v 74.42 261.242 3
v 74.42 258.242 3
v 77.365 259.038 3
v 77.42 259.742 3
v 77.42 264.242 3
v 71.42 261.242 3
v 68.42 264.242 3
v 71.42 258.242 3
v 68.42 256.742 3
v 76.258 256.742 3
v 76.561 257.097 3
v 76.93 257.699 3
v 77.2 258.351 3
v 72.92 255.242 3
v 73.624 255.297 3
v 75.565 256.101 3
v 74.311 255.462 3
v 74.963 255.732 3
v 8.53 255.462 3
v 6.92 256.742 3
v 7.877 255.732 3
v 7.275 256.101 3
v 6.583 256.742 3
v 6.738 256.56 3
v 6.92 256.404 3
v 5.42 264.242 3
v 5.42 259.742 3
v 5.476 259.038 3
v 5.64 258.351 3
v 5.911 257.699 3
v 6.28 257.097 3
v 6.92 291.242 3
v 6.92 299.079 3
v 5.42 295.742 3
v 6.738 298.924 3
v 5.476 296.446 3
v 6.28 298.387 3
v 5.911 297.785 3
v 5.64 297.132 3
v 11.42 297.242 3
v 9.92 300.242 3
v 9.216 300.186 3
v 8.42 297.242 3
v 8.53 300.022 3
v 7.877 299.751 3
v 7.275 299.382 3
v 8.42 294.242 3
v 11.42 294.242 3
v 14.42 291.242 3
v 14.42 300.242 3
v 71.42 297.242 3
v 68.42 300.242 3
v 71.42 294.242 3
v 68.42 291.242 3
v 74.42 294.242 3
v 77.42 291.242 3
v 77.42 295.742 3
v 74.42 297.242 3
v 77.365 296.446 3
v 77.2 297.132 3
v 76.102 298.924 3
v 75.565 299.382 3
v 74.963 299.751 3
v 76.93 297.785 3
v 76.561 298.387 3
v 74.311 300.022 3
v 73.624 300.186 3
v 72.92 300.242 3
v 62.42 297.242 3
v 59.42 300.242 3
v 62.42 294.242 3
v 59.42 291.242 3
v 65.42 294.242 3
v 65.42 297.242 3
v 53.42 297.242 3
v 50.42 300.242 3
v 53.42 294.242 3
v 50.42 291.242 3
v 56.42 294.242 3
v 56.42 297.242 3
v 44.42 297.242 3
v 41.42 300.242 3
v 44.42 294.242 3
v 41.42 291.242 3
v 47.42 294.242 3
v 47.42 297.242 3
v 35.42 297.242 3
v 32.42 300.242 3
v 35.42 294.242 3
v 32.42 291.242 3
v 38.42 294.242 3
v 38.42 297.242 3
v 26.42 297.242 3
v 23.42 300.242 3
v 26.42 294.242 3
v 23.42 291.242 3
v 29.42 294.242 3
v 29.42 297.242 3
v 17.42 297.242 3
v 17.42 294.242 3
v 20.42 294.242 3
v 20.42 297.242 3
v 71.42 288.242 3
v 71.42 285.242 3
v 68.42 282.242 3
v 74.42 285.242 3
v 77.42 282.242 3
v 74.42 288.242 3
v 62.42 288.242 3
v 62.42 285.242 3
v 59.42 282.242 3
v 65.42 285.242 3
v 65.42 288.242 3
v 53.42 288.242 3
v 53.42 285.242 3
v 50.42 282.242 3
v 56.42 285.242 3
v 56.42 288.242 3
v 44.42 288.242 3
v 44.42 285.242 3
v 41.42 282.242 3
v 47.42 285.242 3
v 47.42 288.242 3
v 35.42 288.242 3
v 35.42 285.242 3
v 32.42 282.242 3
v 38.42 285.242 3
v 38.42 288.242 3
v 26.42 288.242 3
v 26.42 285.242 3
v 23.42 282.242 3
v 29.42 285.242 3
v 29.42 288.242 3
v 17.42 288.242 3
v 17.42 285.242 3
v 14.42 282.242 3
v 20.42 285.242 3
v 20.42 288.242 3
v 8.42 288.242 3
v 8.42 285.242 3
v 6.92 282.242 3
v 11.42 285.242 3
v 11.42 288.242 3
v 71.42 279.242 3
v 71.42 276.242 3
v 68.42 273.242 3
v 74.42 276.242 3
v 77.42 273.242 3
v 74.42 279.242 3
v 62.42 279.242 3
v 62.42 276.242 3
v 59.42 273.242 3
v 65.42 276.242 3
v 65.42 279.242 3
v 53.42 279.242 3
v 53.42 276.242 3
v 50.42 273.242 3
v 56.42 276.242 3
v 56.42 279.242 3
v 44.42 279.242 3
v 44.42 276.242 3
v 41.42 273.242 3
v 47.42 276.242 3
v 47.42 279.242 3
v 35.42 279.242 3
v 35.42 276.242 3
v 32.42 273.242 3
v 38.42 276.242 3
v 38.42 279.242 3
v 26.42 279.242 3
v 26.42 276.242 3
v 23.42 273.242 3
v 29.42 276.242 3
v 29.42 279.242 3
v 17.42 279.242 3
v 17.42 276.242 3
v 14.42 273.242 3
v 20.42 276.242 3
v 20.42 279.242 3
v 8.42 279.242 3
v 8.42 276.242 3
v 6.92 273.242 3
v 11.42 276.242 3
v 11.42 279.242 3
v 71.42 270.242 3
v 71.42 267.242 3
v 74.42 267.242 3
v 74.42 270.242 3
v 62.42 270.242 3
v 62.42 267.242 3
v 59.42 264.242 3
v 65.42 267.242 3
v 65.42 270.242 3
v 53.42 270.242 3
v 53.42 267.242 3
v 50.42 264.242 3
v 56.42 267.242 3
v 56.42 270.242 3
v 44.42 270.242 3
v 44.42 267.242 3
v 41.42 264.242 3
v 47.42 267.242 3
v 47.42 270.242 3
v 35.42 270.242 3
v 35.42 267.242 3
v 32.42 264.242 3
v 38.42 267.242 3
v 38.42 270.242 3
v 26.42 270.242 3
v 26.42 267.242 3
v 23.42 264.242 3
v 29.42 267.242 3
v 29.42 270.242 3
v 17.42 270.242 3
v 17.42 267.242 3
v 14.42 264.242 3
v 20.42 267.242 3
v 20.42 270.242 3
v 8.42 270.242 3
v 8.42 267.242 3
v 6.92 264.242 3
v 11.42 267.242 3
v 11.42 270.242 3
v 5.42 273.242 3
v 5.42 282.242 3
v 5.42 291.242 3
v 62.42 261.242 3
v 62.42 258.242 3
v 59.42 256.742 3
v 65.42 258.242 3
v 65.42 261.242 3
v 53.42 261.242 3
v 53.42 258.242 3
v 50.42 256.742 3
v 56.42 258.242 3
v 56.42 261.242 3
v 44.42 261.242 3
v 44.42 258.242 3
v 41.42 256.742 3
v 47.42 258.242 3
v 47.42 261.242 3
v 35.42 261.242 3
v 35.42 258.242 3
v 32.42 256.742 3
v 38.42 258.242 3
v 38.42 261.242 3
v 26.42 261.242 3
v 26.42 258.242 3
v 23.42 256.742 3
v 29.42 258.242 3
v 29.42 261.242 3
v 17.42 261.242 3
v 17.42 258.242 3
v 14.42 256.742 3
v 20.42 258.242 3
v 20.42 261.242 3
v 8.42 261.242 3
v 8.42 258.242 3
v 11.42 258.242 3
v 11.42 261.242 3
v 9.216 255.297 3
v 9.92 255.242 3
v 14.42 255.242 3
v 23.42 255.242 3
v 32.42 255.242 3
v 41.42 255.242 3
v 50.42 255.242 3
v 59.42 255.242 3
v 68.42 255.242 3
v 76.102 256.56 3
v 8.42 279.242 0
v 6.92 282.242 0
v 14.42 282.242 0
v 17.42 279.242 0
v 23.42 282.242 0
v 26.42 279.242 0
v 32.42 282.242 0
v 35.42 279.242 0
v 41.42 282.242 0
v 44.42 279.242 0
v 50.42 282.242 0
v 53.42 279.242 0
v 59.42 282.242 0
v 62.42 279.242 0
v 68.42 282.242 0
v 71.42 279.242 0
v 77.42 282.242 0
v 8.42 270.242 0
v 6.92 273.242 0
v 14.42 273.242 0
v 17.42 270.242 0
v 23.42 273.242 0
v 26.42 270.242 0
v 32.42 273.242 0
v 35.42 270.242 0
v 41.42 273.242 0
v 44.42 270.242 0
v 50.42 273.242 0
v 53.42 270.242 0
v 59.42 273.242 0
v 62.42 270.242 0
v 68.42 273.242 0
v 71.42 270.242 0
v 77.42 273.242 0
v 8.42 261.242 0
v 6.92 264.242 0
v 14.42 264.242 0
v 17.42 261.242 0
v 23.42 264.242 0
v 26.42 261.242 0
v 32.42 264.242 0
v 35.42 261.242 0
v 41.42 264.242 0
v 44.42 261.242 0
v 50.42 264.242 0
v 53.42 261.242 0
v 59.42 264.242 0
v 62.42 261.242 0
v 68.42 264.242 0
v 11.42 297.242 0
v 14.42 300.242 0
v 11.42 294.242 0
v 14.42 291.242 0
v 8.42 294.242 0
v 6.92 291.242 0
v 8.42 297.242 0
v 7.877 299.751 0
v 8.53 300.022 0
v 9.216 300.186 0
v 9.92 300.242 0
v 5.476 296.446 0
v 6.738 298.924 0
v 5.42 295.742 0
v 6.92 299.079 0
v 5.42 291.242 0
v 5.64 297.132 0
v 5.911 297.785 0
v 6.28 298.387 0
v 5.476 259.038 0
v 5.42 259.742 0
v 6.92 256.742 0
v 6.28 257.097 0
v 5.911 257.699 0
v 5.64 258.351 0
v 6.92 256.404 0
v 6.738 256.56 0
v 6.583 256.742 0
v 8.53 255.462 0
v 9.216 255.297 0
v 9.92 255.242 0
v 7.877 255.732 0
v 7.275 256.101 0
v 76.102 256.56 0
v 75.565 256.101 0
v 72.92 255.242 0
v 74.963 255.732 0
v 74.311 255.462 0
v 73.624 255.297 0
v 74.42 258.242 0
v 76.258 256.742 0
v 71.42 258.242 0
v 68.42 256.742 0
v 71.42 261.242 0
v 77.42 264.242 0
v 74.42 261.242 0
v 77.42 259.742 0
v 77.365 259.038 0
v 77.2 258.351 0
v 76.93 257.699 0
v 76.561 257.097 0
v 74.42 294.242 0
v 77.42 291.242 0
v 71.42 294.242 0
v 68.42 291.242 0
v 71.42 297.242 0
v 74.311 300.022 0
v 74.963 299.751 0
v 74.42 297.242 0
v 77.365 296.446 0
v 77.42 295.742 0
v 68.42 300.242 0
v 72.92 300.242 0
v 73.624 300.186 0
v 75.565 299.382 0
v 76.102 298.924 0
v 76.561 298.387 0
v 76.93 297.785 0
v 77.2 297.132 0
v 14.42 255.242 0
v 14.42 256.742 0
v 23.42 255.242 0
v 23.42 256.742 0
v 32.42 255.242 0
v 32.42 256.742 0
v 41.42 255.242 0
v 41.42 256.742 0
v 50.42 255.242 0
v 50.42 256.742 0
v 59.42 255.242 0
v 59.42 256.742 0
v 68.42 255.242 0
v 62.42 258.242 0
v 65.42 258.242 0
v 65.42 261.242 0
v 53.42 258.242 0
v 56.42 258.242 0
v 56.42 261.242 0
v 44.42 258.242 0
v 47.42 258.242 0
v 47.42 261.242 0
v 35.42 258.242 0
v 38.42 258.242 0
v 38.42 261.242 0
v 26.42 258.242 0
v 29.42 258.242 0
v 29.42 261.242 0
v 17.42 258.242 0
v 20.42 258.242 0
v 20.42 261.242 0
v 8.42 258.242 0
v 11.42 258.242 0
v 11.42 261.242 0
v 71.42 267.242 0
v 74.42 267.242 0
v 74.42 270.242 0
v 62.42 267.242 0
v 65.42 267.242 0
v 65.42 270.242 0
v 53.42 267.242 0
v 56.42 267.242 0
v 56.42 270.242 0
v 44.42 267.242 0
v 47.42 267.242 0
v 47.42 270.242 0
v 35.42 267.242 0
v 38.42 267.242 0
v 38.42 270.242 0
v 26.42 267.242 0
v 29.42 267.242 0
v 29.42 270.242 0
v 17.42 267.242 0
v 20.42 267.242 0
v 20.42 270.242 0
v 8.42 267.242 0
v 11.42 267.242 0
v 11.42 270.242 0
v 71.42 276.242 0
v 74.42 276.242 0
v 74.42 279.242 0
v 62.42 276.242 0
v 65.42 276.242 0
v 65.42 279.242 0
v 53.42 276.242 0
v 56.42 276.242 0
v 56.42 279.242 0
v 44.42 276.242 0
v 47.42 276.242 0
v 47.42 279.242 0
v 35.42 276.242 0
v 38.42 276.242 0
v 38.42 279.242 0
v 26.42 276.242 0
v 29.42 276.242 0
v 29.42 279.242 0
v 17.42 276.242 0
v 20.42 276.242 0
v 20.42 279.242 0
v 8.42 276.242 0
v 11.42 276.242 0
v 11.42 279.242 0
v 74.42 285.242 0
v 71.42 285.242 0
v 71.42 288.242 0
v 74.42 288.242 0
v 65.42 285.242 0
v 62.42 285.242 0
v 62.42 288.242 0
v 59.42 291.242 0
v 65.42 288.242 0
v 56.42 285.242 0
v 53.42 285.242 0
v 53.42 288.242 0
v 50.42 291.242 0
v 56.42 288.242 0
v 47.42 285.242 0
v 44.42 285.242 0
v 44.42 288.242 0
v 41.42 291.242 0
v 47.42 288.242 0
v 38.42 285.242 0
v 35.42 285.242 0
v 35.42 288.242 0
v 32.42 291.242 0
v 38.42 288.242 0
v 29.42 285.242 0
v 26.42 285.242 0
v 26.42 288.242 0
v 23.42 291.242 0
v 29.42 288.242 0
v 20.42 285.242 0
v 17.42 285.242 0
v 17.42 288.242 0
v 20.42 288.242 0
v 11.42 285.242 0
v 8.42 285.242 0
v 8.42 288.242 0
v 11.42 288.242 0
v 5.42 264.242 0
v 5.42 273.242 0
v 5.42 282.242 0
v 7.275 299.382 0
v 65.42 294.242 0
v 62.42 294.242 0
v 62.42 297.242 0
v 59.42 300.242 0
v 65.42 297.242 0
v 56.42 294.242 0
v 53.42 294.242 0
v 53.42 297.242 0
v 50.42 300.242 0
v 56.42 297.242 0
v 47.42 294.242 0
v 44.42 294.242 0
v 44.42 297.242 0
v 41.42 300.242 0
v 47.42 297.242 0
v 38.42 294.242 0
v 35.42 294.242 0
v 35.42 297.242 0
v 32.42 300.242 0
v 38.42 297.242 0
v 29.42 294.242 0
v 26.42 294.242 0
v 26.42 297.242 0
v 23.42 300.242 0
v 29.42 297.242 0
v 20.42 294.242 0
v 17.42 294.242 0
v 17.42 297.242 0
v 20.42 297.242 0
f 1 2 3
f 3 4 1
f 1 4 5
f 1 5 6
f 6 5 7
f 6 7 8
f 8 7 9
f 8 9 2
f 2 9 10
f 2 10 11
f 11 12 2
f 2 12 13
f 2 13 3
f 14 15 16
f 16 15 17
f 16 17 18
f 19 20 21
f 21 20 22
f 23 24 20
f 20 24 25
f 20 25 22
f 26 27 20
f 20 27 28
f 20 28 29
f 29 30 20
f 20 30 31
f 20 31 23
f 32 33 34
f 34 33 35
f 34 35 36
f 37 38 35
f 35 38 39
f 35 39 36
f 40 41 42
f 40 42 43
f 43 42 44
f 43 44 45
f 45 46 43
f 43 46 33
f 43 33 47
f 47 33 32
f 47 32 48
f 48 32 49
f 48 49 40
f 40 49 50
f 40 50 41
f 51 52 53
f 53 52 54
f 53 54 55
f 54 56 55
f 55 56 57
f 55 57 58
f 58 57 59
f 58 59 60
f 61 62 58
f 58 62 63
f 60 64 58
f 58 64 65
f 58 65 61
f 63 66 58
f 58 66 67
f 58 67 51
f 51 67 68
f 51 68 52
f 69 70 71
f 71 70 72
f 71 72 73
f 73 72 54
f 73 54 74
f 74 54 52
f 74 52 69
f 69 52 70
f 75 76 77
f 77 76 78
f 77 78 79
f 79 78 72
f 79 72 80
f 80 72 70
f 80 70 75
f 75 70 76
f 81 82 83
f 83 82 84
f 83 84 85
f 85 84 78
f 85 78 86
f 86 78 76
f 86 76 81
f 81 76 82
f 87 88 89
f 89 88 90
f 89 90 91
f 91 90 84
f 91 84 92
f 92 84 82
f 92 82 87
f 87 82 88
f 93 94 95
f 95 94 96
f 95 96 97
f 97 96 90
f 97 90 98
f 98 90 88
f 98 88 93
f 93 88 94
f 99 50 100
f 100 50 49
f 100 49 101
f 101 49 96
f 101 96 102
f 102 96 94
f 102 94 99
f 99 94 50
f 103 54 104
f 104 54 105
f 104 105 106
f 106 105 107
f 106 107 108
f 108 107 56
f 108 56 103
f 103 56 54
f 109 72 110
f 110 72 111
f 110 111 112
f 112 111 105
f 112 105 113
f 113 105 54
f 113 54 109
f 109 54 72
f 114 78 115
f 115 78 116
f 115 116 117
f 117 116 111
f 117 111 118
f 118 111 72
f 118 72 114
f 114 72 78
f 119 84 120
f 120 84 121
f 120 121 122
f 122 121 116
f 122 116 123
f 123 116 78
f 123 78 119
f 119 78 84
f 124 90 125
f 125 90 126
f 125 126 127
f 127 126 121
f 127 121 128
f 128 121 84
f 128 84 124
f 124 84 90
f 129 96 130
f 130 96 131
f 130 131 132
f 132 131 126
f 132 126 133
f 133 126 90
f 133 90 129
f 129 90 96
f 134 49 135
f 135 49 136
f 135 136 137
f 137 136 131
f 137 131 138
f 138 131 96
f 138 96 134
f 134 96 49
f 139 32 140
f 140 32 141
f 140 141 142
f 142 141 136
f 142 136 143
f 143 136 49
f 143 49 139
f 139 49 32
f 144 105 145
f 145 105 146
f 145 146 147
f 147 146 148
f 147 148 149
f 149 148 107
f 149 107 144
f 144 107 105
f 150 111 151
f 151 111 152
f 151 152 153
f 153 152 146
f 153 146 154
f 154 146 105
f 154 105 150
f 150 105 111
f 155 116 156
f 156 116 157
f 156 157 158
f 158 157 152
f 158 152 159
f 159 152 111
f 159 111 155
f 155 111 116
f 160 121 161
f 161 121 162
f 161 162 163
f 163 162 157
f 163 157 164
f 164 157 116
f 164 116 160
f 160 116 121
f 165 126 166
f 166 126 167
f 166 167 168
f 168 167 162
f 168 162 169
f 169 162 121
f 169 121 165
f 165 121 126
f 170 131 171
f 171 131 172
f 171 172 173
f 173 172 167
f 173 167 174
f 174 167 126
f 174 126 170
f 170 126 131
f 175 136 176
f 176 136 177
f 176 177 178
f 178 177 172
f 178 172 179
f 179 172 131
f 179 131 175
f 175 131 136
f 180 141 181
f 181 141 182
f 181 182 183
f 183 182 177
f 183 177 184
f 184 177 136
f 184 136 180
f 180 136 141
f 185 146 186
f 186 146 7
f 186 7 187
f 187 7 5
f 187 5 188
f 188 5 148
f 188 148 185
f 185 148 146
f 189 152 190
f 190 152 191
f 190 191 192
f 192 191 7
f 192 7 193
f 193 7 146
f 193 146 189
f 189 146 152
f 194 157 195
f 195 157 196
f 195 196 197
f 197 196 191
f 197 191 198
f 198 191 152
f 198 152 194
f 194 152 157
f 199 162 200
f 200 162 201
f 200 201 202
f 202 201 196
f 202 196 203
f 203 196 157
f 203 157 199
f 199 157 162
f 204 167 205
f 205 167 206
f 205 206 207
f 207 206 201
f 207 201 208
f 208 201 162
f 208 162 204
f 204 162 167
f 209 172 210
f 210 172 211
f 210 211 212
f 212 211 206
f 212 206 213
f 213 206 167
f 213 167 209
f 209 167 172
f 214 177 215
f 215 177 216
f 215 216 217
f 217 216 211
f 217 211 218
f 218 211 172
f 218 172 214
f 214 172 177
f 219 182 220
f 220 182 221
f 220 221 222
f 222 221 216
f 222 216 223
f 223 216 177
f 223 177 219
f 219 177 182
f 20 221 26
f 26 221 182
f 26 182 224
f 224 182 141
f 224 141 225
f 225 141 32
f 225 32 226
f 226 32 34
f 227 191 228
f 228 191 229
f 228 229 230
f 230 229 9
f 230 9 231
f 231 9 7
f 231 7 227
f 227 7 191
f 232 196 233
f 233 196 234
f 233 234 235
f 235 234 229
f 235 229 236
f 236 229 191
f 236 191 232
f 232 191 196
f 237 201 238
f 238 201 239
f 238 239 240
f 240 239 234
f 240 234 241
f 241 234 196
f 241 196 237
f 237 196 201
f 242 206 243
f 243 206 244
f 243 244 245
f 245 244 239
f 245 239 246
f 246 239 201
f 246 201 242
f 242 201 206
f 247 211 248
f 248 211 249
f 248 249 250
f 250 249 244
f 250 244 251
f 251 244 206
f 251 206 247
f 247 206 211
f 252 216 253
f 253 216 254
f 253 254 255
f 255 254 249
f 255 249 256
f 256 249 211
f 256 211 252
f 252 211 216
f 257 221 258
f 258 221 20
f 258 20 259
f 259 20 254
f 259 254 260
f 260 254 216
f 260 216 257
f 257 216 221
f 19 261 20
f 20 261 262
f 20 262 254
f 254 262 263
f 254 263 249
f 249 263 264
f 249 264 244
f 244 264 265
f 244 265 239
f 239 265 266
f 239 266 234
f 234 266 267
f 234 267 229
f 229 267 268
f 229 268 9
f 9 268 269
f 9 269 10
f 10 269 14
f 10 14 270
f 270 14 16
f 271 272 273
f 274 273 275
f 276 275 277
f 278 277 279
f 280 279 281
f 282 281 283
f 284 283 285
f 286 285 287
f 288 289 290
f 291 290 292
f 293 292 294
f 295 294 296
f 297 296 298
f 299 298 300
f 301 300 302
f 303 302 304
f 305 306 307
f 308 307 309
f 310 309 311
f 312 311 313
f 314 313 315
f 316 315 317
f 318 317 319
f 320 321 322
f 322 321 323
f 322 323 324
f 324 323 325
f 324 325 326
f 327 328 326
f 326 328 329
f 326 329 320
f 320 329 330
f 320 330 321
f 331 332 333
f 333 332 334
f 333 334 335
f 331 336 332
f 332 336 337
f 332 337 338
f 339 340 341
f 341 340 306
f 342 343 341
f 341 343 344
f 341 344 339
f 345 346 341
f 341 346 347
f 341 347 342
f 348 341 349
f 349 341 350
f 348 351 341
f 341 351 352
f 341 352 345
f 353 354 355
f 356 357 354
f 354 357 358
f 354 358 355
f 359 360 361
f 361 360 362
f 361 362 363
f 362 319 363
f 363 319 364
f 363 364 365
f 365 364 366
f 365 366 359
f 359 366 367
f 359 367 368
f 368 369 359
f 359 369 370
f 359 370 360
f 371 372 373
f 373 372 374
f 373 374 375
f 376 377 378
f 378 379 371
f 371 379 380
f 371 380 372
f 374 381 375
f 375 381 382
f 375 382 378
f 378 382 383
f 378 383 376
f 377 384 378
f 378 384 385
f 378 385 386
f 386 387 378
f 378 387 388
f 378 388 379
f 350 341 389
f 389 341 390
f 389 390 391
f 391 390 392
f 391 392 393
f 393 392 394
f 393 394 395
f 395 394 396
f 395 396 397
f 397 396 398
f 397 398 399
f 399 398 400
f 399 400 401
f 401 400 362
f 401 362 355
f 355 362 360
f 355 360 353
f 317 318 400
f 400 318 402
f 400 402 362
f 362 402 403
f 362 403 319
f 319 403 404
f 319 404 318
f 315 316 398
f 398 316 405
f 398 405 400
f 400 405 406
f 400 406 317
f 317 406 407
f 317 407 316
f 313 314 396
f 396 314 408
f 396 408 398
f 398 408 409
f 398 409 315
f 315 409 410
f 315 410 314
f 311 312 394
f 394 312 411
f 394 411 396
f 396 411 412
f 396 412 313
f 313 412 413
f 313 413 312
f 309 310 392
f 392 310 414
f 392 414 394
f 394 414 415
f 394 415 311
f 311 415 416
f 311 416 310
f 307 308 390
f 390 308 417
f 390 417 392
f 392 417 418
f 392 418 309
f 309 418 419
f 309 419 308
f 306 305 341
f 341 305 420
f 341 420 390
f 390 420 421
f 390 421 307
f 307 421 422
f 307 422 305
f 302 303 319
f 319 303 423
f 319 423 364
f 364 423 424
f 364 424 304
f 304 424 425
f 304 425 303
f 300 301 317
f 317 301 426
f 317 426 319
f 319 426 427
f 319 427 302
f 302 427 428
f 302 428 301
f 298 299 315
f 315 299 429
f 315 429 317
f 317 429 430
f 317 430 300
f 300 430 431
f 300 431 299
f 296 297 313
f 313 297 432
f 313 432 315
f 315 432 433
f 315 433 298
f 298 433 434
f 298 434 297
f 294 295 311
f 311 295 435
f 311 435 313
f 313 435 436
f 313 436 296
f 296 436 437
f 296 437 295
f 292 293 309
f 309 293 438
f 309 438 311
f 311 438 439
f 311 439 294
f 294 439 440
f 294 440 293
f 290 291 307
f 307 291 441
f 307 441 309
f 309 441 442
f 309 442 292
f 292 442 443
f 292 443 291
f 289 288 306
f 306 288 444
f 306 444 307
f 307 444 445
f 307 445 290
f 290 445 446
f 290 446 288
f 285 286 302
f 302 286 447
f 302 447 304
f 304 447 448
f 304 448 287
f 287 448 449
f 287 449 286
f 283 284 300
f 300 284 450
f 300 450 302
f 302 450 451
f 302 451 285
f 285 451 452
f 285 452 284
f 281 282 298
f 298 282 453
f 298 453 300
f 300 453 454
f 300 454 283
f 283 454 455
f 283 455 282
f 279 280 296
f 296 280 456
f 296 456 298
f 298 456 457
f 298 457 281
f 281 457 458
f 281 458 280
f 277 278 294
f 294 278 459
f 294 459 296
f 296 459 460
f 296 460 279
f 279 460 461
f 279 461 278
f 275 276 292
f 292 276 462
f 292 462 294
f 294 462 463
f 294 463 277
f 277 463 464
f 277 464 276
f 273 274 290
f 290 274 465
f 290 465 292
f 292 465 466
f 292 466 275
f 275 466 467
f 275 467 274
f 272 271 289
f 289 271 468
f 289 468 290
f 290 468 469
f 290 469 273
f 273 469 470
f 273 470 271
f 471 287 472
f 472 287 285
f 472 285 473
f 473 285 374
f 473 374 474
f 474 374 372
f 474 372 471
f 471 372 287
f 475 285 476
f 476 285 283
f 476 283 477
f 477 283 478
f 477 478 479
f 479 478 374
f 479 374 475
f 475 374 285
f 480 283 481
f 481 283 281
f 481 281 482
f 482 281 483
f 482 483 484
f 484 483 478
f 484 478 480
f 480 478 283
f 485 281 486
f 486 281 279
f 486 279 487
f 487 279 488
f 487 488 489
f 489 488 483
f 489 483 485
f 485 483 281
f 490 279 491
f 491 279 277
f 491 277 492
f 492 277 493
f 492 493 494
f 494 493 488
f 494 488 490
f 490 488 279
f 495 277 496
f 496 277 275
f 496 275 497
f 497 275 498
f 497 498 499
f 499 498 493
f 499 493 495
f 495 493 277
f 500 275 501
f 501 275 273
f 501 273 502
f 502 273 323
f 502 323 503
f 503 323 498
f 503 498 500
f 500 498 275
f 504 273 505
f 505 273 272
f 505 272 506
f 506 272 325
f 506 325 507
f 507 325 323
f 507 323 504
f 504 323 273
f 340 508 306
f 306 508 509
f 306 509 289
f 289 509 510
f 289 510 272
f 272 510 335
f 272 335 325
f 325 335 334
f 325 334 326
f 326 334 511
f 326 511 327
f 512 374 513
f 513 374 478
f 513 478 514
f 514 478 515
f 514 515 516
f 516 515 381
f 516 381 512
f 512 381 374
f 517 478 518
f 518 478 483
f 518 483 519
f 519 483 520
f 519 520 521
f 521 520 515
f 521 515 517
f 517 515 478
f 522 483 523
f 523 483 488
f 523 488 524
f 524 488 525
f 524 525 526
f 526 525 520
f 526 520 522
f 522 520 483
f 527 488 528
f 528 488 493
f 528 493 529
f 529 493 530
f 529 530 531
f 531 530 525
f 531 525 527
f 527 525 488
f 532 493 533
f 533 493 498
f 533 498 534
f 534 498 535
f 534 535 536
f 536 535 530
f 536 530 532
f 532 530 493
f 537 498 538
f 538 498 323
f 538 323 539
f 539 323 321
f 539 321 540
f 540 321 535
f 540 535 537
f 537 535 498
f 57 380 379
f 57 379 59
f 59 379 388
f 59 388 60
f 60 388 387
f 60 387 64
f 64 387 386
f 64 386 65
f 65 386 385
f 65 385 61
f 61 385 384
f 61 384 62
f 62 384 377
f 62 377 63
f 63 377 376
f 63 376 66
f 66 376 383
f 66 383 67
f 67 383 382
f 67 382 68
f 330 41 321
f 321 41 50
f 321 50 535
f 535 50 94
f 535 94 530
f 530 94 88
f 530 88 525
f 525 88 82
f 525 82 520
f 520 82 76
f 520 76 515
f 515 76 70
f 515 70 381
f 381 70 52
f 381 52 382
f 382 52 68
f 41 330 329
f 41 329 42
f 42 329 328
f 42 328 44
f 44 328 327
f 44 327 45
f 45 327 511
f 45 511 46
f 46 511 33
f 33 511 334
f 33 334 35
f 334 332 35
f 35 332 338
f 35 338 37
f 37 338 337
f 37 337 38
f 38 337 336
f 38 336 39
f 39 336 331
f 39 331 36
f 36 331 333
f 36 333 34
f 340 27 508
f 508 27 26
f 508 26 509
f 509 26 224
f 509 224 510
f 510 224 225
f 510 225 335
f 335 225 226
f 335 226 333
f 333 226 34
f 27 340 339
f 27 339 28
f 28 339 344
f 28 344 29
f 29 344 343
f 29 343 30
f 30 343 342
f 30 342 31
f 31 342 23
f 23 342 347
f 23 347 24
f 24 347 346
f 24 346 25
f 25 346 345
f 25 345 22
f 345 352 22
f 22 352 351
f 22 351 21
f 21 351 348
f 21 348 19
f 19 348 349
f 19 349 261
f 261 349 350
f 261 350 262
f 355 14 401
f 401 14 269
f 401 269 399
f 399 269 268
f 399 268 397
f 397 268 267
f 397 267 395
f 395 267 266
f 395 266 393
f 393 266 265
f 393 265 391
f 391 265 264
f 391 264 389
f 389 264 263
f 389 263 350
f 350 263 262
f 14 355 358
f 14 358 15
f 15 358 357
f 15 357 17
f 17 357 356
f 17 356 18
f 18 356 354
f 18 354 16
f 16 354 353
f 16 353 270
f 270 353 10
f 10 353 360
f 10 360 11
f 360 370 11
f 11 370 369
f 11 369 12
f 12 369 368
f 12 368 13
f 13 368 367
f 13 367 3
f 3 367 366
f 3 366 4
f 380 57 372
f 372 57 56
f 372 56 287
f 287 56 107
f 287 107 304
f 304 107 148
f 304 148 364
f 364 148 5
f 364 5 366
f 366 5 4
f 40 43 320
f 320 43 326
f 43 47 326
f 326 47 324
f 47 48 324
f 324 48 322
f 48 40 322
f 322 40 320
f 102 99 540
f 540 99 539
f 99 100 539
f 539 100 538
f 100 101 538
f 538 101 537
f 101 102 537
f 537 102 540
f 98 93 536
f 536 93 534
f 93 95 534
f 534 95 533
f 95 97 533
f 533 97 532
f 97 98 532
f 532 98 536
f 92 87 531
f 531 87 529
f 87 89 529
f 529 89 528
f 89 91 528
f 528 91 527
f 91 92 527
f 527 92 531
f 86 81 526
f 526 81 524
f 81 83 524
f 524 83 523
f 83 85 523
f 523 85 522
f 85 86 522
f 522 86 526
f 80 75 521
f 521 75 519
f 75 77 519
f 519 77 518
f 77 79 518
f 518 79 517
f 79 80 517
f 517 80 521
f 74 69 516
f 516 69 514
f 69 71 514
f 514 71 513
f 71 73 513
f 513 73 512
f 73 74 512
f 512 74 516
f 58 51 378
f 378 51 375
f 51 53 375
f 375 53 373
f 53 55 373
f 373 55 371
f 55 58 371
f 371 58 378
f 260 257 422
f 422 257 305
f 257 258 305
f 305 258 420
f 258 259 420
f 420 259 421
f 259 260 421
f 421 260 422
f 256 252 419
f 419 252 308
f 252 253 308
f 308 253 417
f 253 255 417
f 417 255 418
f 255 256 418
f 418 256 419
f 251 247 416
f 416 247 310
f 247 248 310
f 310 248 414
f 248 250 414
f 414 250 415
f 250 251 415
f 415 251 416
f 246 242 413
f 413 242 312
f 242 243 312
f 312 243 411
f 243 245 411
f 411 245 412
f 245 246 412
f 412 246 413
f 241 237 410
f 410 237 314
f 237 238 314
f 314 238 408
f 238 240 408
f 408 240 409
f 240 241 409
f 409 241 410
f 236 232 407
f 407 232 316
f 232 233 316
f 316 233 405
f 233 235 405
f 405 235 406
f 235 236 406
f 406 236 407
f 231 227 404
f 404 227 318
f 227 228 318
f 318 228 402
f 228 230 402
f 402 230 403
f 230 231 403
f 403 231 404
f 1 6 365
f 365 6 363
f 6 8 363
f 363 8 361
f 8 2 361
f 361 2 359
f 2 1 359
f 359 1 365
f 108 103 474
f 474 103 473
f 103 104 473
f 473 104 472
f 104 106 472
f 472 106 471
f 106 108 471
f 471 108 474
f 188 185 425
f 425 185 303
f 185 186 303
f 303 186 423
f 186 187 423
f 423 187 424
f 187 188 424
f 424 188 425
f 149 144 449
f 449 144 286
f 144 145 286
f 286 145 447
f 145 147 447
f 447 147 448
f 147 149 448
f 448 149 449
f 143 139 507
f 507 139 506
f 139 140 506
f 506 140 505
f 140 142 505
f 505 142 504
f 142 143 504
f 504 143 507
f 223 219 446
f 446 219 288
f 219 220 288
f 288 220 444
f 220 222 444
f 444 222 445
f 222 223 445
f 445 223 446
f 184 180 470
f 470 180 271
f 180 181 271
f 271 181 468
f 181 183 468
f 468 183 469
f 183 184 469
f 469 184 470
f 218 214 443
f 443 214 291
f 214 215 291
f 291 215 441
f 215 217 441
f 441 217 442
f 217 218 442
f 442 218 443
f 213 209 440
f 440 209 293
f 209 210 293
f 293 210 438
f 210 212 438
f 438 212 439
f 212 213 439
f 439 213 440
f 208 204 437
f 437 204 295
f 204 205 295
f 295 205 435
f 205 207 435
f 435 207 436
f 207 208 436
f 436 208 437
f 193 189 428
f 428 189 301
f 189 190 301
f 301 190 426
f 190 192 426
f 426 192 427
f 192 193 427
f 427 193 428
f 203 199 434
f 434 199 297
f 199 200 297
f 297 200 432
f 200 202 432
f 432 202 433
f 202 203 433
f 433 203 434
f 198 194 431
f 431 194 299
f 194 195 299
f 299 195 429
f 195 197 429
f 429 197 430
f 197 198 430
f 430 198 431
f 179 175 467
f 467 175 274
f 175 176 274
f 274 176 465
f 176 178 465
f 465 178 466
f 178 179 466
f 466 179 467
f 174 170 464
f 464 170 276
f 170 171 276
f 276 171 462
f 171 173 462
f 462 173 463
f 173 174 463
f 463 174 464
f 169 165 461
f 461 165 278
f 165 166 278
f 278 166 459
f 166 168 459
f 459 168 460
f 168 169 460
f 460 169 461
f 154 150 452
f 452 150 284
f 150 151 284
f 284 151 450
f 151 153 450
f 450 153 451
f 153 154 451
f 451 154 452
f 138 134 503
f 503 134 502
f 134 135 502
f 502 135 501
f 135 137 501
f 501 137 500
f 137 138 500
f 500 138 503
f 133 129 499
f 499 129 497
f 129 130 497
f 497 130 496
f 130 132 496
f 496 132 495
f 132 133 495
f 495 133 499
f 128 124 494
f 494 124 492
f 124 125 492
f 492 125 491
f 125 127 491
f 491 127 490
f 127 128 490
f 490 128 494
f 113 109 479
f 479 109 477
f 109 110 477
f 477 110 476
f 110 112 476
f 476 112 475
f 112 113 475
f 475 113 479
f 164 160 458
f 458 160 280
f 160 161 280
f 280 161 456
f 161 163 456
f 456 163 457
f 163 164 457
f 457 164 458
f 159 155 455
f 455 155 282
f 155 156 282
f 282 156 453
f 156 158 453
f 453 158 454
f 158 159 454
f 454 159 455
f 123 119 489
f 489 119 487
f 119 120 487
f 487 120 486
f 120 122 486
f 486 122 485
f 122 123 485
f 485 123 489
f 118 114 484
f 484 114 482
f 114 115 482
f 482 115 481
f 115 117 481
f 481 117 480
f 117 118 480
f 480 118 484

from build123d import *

# Parameters (mm, degrees)
MODEL_W                 = 3
MODEL_H                 = 3
SALIENTE_EXTRUIR1_DEPTH = 3


with BuildPart() as part:
    # Model → Saliente-Extruir1 (new body)
    with BuildSketch(Plane.XY):
        with BuildLine():
            Line((77.4201517, 259.741779533), (77.4201517, 295.741779533))
            ThreePointArc((77.4201517, 295.741779533), (76.102132215, 298.923760049), (72.9201517, 300.241779533))
            Line((72.9201517, 300.241779533), (9.9201517, 300.241779533))
            ThreePointArc((9.9201517, 300.241779533), (6.738171185, 298.923760049), (5.4201517, 295.741779533))
            Line((5.4201517, 295.741779533), (5.4201517, 259.741779533))
            ThreePointArc((5.4201517, 259.741779533), (6.738171185, 256.559799018), (9.9201517, 255.241779533))
            Line((9.9201517, 255.241779533), (72.9201517, 255.241779533))
            ThreePointArc((72.9201517, 255.241779533), (76.102132215, 256.559799018), (77.4201517, 259.741779533))
        make_face()
        with Locations((9.9201517, 295.741779533)):
            Rectangle(MODEL_W, MODEL_H, mode=Mode.SUBTRACT)
        with Locations((18.9201517, 295.741779533)):
            Rectangle(MODEL_W, MODEL_H, mode=Mode.SUBTRACT)
        with Locations((27.9201517, 295.741779533)):
            Rectangle(MODEL_W, MODEL_H, mode=Mode.SUBTRACT)
        with Locations((36.9201517, 295.741779533)):
            Rectangle(MODEL_W, MODEL_H, mode=Mode.SUBTRACT)
        with Locations((45.9201517, 295.741779533)):
            Rectangle(MODEL_W, MODEL_H, mode=Mode.SUBTRACT)
        with Locations((54.9201517, 295.741779533)):
            Rectangle(MODEL_W, MODEL_H, mode=Mode.SUBTRACT)
        with Locations((63.9201517, 295.741779533)):
            Rectangle(MODEL_W, MODEL_H, mode=Mode.SUBTRACT)
        with Locations((72.9201517, 295.741779533)):
            Rectangle(MODEL_W, MODEL_H, mode=Mode.SUBTRACT)
        with Locations((9.9201517, 259.741779533)):
            Rectangle(MODEL_W, MODEL_H, mode=Mode.SUBTRACT)
        with Locations((18.9201517, 259.741779533)):
            Rectangle(MODEL_W, MODEL_H, mode=Mode.SUBTRACT)
        with Locations((27.9201517, 259.741779533)):
            Rectangle(MODEL_W, MODEL_H, mode=Mode.SUBTRACT)
        with Locations((36.9201517, 259.741779533)):
            Rectangle(MODEL_W, MODEL_H, mode=Mode.SUBTRACT)
        with Locations((45.9201517, 259.741779533)):
            Rectangle(MODEL_W, MODEL_H, mode=Mode.SUBTRACT)
        with Locations((54.9201517, 259.741779533)):
            Rectangle(MODEL_W, MODEL_H, mode=Mode.SUBTRACT)
        with Locations((63.9201517, 259.741779533)):
            Rectangle(MODEL_W, MODEL_H, mode=Mode.SUBTRACT)
        with Locations((72.9201517, 259.741779533)):
            Rectangle(MODEL_W, MODEL_H, mode=Mode.SUBTRACT)
        with Locations((72.9201517, 286.741779533)):
            Rectangle(MODEL_W, MODEL_H, mode=Mode.SUBTRACT)
        with Locations((72.9201517, 268.741779533)):
            Rectangle(MODEL_W, MODEL_H, mode=Mode.SUBTRACT)
        with Locations((72.9201517, 277.741779533)):
            Rectangle(MODEL_W, MODEL_H, mode=Mode.SUBTRACT)
        with Locations((9.9201517, 286.741779533)):
            Rectangle(MODEL_W, MODEL_H, mode=Mode.SUBTRACT)
        with Locations((9.9201517, 268.741779533)):
            Rectangle(MODEL_W, MODEL_H, mode=Mode.SUBTRACT)
        with Locations((9.9201517, 277.741779533)):
            Rectangle(MODEL_W, MODEL_H, mode=Mode.SUBTRACT)
        with Locations((18.9201517, 268.741779533)):
            Rectangle(MODEL_W, MODEL_H, mode=Mode.SUBTRACT)
        with Locations((27.9201517, 268.741779533)):
            Rectangle(MODEL_W, MODEL_H, mode=Mode.SUBTRACT)
        with Locations((36.9201517, 268.741779533)):
            Rectangle(MODEL_W, MODEL_H, mode=Mode.SUBTRACT)
        with Locations((63.9201517, 268.741779533)):
            Rectangle(MODEL_W, MODEL_H, mode=Mode.SUBTRACT)
        with Locations((45.9201517, 268.741779533)):
            Rectangle(MODEL_W, MODEL_H, mode=Mode.SUBTRACT)
        with Locations((54.9201517, 268.741779533)):
            Rectangle(MODEL_W, MODEL_H, mode=Mode.SUBTRACT)
        with Locations((18.9201517, 277.741779533)):
            Rectangle(MODEL_W, MODEL_H, mode=Mode.SUBTRACT)
        with Locations((27.9201517, 277.741779533)):
            Rectangle(MODEL_W, MODEL_H, mode=Mode.SUBTRACT)
        with Locations((36.9201517, 277.741779533)):
            Rectangle(MODEL_W, MODEL_H, mode=Mode.SUBTRACT)
        with Locations((63.9201517, 277.741779533)):
            Rectangle(MODEL_W, MODEL_H, mode=Mode.SUBTRACT)
        with Locations((18.9201517, 286.741779533)):
            Rectangle(MODEL_W, MODEL_H, mode=Mode.SUBTRACT)
        with Locations((27.9201517, 286.741779533)):
            Rectangle(MODEL_W, MODEL_H, mode=Mode.SUBTRACT)
        with Locations((36.9201517, 286.741779533)):
            Rectangle(MODEL_W, MODEL_H, mode=Mode.SUBTRACT)
        with Locations((63.9201517, 286.741779533)):
            Rectangle(MODEL_W, MODEL_H, mode=Mode.SUBTRACT)
        with Locations((45.9201517, 277.741779533)):
            Rectangle(MODEL_W, MODEL_H, mode=Mode.SUBTRACT)
        with Locations((54.9201517, 277.741779533)):
            Rectangle(MODEL_W, MODEL_H, mode=Mode.SUBTRACT)
        with Locations((45.9201517, 286.741779533)):
            Rectangle(MODEL_W, MODEL_H, mode=Mode.SUBTRACT)
        with Locations((54.9201517, 286.741779533)):
            Rectangle(MODEL_W, MODEL_H, mode=Mode.SUBTRACT)
    extrude(amount=SALIENTE_EXTRUIR1_DEPTH)


solid = part.part
